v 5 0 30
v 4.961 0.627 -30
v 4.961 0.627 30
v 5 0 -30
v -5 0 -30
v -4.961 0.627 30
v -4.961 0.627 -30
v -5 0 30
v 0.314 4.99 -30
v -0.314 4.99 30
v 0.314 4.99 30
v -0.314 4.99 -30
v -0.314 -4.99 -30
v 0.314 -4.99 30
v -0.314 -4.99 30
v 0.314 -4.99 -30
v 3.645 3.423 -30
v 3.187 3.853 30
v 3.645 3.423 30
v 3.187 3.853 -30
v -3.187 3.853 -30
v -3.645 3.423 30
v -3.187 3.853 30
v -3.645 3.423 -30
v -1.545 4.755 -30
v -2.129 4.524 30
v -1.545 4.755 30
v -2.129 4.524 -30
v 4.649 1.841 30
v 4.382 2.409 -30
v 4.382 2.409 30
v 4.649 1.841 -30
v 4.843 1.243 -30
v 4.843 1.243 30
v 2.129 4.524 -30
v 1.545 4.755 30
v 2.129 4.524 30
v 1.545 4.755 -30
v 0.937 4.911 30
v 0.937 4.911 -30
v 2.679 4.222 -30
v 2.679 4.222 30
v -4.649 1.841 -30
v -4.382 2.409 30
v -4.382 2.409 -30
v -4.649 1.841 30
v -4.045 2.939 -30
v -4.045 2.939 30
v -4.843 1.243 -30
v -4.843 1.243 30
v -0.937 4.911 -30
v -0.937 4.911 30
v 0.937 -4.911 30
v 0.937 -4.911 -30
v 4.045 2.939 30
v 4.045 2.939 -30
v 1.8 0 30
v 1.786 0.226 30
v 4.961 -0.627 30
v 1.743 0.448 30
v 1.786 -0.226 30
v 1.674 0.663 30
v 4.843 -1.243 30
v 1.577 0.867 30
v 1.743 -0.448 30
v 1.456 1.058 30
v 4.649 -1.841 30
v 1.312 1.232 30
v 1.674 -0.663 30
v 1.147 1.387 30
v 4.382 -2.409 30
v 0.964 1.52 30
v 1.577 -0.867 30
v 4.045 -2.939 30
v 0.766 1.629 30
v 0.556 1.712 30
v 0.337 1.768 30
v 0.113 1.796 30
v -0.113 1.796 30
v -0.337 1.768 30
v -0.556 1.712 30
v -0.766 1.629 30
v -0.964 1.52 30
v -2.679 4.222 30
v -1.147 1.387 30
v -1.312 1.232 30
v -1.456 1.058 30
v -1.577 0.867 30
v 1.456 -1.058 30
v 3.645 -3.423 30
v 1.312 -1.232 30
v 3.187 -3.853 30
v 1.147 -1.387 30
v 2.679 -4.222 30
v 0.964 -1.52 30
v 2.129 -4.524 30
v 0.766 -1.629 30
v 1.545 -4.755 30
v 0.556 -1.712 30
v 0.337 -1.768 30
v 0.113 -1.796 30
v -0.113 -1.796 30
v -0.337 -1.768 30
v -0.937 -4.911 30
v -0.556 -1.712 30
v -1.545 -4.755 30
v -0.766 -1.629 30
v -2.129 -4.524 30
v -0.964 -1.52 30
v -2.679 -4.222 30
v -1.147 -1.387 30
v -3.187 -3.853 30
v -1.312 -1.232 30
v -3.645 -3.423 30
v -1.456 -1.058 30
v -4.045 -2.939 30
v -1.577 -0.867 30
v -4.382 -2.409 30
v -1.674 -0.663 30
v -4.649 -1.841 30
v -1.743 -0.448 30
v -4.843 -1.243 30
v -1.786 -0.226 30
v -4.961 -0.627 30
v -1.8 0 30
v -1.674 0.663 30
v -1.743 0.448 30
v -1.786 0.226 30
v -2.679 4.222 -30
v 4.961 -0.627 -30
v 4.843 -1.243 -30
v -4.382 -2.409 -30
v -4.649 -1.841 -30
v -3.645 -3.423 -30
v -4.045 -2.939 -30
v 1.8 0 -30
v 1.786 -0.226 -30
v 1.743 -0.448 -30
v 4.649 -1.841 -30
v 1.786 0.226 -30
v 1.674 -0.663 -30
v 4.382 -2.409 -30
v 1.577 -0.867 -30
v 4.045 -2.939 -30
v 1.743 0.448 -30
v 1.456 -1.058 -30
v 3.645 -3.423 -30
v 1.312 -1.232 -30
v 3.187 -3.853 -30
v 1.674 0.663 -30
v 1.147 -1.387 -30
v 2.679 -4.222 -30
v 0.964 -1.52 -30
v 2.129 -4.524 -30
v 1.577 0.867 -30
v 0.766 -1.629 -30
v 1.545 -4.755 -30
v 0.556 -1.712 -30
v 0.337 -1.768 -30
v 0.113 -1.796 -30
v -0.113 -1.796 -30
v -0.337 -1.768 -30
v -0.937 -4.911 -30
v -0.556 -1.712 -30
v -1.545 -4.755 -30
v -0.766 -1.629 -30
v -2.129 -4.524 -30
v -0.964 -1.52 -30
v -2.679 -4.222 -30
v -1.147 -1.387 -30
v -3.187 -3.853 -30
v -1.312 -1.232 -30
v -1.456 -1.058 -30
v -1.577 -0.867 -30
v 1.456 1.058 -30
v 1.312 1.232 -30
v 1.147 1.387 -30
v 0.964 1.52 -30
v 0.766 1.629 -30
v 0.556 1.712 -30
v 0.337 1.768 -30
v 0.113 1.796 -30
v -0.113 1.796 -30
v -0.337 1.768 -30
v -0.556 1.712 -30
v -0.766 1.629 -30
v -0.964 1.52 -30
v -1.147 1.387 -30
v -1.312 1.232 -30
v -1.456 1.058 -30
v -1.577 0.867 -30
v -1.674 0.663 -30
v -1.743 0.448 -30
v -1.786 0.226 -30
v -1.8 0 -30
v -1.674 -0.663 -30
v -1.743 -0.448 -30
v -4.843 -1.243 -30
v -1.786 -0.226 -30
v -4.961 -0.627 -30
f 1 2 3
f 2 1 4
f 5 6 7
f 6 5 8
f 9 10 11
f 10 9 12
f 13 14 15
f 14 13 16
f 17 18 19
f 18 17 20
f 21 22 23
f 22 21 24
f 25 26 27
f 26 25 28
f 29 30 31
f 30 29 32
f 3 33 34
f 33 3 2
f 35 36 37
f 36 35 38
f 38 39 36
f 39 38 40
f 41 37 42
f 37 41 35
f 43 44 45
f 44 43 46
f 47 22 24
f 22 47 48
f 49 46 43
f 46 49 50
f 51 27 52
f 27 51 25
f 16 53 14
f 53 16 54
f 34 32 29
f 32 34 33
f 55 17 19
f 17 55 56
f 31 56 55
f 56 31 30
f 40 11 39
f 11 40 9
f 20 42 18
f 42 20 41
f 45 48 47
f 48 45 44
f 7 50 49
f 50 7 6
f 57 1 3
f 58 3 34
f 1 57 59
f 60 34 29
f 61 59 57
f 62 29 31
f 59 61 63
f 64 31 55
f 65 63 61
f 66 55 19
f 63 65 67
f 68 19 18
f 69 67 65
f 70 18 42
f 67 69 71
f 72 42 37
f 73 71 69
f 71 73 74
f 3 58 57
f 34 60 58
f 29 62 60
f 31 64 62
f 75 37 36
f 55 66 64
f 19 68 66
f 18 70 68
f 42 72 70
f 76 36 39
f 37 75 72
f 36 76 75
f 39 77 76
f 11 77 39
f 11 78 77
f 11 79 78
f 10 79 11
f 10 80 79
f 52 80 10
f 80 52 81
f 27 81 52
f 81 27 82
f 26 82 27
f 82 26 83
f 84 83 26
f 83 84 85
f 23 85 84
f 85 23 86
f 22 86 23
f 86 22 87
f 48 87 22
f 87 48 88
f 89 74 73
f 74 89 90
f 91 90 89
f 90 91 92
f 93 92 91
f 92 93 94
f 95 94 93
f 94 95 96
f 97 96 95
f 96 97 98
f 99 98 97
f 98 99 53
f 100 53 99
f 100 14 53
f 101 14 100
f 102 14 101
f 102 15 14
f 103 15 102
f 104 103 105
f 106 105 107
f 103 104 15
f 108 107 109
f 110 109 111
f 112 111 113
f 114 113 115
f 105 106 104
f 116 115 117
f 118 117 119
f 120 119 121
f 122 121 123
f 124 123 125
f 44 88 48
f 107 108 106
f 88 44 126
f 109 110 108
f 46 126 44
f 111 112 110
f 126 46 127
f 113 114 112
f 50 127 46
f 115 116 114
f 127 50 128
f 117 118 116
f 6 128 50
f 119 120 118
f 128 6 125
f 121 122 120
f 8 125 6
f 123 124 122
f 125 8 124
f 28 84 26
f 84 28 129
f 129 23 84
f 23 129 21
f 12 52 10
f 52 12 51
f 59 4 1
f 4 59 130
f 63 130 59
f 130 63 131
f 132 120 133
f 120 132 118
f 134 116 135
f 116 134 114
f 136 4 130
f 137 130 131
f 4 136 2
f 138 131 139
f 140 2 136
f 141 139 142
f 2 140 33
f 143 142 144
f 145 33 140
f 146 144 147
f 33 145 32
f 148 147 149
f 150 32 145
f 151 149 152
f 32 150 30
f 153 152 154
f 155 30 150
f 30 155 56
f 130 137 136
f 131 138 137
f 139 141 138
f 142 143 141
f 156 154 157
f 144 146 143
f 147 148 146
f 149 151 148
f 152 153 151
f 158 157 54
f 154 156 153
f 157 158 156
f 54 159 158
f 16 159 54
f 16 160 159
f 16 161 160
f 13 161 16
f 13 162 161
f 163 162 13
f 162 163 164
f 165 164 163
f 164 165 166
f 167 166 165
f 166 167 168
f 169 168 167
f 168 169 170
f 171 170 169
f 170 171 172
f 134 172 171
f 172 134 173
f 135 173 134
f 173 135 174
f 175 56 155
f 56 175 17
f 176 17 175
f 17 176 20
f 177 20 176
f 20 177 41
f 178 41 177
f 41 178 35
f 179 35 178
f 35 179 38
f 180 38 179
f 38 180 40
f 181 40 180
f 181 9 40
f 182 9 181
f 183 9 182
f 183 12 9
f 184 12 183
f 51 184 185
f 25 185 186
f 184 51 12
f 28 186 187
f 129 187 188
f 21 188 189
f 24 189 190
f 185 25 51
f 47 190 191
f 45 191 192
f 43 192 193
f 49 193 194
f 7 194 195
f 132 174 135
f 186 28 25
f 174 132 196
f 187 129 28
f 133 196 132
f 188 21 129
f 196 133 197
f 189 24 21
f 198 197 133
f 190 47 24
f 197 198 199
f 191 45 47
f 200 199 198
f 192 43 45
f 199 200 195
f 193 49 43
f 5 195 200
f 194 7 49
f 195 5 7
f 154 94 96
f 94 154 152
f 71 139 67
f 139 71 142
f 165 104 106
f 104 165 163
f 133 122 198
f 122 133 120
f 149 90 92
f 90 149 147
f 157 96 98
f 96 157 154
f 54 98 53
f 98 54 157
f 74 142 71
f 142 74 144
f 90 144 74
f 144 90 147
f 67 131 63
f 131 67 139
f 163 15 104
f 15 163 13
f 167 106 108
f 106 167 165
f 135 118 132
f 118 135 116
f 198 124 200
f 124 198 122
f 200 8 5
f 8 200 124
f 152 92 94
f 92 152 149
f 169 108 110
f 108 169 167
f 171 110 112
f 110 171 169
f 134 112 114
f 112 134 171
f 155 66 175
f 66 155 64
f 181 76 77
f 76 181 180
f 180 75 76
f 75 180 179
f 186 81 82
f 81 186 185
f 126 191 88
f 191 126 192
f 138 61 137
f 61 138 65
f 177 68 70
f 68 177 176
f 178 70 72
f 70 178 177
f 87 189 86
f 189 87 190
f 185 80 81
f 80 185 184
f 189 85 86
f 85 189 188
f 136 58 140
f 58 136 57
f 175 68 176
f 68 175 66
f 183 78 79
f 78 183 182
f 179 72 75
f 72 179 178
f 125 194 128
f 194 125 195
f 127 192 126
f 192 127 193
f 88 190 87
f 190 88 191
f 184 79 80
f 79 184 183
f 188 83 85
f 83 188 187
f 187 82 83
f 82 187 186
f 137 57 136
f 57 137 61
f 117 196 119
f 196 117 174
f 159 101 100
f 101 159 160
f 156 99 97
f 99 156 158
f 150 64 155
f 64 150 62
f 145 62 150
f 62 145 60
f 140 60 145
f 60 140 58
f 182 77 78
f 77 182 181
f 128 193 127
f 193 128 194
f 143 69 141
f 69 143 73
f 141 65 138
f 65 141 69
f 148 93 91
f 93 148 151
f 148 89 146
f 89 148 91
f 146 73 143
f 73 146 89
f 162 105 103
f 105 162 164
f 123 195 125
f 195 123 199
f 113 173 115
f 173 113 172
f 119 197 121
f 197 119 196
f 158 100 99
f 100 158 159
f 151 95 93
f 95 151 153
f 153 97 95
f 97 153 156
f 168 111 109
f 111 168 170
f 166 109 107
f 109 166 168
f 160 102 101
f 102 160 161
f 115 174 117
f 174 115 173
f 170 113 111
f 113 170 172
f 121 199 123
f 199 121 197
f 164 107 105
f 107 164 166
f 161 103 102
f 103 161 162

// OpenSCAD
$fn = 50;


difference() {
	union() {
		translate(v = [0, 0, -30.0000000000]) {
			cylinder(h = 60, r = 5.0000000000);
		}
	}
	union() {
		translate(v = [0, 0, -100.0000000000]) {
			cylinder(h = 200, r = 1.8000000000);
		}
	}
}
